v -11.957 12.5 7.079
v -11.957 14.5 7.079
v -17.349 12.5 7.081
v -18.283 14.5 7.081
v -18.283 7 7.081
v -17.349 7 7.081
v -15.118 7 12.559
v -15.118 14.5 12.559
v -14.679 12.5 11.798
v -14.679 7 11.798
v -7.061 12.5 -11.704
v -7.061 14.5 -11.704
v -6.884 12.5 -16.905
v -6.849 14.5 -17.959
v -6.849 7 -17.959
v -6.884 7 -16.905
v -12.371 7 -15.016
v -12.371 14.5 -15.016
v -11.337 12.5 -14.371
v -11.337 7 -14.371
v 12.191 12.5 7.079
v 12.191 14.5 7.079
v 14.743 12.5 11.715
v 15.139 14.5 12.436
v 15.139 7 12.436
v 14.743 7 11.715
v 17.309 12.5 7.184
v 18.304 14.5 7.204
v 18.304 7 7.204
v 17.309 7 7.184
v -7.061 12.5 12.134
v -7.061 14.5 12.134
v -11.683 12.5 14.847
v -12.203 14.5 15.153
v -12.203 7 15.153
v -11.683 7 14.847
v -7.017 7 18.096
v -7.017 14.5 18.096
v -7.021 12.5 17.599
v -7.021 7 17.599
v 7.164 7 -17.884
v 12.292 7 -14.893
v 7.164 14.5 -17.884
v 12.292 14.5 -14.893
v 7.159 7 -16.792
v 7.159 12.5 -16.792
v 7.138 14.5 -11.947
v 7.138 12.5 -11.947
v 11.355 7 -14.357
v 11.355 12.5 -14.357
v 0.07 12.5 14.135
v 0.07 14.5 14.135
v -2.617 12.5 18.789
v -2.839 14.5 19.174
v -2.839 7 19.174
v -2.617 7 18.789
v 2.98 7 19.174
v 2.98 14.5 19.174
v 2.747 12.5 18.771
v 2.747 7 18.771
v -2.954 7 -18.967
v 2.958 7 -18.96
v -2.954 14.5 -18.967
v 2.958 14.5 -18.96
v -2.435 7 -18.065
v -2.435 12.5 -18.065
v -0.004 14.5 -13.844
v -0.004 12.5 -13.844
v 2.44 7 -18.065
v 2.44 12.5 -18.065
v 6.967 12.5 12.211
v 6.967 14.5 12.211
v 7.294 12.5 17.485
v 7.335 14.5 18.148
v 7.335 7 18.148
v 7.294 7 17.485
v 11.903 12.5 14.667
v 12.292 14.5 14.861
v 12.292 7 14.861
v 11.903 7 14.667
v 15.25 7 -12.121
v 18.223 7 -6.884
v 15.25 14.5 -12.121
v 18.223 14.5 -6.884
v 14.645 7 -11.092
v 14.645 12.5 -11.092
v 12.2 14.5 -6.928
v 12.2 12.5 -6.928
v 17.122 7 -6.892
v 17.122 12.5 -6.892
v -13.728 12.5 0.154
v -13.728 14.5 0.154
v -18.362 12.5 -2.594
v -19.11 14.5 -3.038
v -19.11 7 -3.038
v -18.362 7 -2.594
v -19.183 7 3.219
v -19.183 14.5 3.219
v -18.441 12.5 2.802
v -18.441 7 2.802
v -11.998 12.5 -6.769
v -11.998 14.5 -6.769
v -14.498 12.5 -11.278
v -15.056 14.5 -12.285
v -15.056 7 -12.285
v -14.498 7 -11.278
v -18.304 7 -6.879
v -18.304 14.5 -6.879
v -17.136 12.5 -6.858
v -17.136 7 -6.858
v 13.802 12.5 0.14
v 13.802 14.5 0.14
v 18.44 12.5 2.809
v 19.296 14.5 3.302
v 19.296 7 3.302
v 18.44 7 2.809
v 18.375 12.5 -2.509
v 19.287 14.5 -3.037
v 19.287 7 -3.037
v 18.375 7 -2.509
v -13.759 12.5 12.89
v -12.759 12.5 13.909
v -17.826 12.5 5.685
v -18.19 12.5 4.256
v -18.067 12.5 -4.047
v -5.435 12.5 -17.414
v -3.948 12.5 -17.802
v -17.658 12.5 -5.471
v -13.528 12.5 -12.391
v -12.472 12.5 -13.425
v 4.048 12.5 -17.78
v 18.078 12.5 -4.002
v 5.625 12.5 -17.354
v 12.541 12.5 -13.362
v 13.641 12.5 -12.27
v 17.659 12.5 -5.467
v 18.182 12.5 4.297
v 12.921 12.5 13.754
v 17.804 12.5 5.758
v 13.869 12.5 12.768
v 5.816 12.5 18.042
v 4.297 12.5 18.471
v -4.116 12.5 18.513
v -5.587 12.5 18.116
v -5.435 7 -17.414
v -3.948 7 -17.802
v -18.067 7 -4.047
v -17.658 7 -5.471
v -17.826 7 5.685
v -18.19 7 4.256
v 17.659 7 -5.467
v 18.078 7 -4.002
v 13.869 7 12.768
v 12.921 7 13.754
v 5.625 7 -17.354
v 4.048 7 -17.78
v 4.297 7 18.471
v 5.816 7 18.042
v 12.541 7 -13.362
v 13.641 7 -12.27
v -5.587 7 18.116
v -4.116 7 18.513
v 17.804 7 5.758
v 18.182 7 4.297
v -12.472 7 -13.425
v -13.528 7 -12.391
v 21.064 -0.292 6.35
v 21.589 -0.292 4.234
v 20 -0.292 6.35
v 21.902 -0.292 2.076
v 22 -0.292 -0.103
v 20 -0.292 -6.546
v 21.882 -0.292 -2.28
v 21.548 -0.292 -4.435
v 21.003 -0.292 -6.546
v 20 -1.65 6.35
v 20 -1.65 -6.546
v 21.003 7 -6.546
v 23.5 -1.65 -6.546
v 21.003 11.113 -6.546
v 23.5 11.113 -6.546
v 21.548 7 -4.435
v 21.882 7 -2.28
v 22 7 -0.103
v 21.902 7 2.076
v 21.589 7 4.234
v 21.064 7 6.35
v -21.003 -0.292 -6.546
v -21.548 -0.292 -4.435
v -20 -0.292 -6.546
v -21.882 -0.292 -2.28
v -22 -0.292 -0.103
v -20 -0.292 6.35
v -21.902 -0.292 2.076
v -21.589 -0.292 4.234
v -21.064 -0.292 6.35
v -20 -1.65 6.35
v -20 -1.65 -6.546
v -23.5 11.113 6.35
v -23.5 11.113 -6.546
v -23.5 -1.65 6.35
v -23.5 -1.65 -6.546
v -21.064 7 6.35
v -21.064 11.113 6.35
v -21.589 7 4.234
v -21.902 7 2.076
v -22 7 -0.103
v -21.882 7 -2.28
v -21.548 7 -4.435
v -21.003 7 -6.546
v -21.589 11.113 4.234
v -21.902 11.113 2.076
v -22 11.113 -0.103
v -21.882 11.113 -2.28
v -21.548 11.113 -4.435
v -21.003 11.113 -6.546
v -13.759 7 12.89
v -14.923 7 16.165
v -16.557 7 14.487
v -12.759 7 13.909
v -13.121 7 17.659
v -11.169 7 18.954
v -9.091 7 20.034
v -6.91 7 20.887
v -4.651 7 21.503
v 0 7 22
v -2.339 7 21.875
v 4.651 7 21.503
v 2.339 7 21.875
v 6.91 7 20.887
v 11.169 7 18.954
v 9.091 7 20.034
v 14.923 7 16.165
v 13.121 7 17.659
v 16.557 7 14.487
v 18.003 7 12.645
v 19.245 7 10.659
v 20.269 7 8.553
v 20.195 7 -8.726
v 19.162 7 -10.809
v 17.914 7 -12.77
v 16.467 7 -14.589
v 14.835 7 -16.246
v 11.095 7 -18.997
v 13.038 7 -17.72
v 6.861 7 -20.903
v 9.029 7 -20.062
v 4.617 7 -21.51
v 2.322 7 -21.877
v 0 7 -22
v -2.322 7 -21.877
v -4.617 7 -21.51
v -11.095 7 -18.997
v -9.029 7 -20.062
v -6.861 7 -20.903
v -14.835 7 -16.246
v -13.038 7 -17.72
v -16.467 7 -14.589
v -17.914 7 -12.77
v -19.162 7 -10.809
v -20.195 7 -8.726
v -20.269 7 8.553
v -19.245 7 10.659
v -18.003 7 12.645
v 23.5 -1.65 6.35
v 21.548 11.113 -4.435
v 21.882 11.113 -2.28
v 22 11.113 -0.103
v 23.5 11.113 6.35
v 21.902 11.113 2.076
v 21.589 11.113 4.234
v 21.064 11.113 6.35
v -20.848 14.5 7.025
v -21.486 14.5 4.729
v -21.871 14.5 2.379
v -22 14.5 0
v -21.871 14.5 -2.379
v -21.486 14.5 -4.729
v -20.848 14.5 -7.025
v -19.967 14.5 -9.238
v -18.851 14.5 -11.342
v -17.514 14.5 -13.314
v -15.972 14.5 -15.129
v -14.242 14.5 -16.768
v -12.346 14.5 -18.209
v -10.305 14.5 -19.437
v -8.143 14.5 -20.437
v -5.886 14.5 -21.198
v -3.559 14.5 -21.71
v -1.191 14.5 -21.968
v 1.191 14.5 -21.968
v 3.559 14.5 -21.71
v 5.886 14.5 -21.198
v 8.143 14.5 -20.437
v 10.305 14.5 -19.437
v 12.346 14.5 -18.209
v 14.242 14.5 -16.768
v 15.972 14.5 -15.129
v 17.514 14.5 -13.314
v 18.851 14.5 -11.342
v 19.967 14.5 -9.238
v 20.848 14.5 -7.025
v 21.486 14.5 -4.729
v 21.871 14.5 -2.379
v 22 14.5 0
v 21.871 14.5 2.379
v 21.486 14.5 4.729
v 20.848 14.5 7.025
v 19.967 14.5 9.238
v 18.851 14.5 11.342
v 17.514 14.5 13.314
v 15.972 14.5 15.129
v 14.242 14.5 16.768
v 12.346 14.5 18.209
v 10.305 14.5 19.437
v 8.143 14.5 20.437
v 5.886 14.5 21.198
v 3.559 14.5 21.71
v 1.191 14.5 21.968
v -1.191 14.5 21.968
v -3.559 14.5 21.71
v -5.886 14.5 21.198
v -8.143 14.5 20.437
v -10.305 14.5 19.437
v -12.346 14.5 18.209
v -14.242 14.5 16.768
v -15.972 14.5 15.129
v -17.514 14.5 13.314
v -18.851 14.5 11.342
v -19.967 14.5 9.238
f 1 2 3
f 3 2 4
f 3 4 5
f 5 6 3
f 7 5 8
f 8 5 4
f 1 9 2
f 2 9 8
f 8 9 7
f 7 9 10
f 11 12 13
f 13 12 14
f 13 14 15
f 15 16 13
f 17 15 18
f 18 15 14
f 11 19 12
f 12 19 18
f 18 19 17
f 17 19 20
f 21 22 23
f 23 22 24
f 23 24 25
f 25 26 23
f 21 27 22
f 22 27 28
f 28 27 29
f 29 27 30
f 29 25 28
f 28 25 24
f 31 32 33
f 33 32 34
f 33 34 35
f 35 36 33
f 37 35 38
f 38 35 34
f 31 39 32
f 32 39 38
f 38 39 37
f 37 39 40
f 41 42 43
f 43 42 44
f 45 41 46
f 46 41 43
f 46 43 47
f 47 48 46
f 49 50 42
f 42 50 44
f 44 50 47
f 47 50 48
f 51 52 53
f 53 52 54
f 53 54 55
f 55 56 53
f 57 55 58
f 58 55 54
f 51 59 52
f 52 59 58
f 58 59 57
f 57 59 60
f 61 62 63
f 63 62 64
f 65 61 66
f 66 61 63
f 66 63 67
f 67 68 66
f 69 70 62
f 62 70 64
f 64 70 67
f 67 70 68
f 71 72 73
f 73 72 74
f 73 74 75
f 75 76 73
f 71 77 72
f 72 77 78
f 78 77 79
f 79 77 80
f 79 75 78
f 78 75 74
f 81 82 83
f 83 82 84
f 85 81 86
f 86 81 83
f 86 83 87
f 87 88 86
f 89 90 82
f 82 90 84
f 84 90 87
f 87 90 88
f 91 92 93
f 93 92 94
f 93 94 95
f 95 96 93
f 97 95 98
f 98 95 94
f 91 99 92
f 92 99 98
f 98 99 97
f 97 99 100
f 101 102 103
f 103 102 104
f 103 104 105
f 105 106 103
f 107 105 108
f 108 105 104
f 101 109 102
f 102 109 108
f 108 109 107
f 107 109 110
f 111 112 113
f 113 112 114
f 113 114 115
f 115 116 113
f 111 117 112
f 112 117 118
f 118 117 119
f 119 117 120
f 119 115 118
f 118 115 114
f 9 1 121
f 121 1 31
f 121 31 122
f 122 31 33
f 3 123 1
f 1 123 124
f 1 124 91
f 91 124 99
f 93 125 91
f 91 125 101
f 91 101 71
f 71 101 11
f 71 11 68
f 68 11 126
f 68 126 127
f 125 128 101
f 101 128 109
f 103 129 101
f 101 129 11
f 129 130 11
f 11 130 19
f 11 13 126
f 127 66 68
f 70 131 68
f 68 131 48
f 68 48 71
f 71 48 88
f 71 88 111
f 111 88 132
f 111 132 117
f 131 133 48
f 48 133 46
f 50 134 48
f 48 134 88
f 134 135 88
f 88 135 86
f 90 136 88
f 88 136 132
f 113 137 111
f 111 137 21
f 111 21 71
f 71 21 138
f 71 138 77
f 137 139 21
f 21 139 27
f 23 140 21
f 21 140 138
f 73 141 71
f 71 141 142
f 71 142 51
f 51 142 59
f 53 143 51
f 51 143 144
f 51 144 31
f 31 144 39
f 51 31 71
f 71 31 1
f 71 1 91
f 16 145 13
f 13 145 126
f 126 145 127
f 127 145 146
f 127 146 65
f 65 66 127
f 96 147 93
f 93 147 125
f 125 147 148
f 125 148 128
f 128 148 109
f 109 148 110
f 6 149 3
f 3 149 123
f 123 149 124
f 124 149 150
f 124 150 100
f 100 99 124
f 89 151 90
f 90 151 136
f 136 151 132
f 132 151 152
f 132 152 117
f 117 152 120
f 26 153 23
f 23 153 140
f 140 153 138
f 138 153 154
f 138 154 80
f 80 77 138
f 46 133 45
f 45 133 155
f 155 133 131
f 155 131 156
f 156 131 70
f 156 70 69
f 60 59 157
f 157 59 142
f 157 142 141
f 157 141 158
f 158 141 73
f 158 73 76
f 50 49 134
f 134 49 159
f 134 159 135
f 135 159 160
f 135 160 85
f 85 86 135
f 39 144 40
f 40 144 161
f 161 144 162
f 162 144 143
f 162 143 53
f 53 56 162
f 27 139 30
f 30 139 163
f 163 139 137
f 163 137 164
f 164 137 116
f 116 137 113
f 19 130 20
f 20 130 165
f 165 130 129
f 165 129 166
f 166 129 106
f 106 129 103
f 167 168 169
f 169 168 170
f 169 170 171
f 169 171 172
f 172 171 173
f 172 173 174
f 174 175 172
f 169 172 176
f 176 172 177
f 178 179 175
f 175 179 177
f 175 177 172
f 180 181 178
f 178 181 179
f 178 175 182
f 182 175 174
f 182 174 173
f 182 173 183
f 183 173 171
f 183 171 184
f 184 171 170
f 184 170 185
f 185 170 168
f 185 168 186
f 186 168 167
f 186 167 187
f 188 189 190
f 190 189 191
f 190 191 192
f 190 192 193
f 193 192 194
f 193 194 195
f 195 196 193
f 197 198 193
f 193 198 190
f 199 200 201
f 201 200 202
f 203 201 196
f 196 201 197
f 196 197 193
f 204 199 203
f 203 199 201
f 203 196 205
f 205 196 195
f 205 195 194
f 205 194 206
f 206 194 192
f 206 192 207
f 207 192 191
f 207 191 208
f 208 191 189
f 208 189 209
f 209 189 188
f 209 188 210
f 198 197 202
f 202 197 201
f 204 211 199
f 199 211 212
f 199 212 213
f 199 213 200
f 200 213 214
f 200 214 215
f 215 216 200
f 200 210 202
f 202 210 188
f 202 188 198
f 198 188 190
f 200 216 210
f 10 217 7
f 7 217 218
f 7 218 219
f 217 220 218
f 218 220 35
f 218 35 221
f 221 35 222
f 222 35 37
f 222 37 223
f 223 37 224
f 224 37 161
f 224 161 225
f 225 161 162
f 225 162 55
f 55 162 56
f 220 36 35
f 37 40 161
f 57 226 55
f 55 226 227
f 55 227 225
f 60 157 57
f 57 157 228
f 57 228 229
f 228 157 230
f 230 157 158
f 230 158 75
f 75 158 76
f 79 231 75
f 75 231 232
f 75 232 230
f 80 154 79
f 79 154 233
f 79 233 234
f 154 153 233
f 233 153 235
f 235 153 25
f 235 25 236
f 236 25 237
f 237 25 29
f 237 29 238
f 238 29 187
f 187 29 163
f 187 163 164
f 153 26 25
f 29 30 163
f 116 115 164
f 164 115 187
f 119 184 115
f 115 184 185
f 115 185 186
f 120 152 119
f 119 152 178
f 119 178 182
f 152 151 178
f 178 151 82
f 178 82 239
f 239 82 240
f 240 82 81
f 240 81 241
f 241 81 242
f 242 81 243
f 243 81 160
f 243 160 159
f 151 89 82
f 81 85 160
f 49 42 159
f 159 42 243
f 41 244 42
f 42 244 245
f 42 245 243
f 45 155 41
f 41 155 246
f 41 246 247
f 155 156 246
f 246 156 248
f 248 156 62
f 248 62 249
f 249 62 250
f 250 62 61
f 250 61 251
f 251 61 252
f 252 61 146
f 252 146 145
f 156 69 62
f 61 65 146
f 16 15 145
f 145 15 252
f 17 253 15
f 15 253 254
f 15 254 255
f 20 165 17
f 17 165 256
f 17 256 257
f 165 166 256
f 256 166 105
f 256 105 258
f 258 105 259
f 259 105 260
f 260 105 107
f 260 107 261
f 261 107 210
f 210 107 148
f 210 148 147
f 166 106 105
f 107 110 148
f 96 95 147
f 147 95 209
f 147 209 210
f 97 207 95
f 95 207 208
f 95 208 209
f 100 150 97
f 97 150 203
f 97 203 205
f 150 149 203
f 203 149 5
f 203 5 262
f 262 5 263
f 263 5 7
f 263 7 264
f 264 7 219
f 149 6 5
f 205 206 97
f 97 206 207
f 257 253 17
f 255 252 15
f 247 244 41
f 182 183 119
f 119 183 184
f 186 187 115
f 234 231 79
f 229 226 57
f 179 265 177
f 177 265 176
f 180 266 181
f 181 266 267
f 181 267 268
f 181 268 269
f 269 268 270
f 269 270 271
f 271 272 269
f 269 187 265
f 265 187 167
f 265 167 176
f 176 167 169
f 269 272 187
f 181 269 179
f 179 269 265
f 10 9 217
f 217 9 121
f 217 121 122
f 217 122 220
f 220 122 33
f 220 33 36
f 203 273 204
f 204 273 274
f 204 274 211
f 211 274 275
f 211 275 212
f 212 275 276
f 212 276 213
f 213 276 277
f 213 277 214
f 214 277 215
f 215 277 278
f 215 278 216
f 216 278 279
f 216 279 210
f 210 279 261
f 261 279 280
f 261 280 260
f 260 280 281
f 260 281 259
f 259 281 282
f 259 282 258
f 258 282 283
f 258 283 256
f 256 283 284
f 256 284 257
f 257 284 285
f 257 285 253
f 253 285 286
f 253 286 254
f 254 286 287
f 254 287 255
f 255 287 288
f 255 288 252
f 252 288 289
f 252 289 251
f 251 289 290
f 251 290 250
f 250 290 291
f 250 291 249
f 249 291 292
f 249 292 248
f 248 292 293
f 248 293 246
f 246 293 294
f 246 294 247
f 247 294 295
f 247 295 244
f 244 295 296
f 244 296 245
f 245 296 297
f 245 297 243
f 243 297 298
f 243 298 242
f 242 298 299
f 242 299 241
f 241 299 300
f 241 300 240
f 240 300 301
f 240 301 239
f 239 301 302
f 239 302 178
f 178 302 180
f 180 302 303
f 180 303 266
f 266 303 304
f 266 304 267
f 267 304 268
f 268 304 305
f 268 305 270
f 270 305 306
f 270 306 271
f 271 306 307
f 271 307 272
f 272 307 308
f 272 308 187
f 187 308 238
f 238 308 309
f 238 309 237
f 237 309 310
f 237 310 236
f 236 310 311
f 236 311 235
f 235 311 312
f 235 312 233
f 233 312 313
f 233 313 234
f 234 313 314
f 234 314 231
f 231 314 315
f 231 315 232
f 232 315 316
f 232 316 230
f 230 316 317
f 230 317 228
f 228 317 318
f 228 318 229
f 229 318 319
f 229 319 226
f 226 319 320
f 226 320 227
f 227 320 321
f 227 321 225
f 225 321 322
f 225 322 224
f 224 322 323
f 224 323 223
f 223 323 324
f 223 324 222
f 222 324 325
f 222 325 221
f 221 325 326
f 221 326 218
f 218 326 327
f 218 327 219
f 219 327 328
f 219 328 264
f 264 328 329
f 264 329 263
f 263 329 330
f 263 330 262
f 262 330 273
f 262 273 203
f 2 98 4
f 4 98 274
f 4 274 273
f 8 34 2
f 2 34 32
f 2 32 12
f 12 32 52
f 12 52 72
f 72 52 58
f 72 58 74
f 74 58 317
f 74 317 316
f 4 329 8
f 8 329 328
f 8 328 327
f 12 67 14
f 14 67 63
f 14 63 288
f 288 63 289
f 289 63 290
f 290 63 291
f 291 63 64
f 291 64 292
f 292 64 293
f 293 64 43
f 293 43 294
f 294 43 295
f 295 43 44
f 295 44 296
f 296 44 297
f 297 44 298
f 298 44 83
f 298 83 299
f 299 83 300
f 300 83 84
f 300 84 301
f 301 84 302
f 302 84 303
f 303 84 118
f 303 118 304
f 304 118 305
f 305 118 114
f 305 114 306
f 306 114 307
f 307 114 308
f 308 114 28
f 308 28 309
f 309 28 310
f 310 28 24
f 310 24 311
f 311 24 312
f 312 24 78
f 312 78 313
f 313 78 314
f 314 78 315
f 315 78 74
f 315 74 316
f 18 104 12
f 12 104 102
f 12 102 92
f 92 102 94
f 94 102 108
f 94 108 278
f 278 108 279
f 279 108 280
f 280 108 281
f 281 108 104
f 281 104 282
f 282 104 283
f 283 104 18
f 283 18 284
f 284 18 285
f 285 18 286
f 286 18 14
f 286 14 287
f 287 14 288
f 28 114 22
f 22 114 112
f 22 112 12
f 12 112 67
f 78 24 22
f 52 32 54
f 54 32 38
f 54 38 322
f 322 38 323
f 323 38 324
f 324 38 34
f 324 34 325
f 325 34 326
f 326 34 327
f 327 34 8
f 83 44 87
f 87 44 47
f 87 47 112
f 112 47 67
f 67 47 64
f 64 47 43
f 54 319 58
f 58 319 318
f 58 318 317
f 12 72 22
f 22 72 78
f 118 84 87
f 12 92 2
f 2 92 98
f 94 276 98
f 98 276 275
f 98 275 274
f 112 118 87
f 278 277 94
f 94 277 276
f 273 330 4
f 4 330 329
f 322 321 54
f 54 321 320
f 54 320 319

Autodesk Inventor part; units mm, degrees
ref_plane "YZ Plane" through (0, 0, 0) normal (1, 0, 0) x (0, 1, 0)
ref_plane "XZ Plane" through (0, 0, 0) normal (0, 1, 0) x (-1, 0, 0)
ref_plane "XY Plane" through (0, 0, 0) normal (0, 0, 1) x (1, 0, 0)
sketch "Sketch1" plane through (0, 0, 0) normal (0, 1, 0) x (-1, 0, 0)
  circle A0 centre (0, 0) radius 22
  arc A1 (-13.7238, -17.1947) -> (13.7238, -17.1947) centre (0, 0) ccw
  dimension "d0" = 44
  dimension "d11" = 13.7238
ref_plane "Work Plane10" through (0, 7, 0) normal (0, 1, 0) x (1, 0, 0)
sketch "Sketch5" plane through (0, 7, 0) normal (0, 1, 0) x (1, 0, 0)
  circle A0 centre (0, 0) radius 20
  dimension "d8" = 40
ref_plane "Work Plane9" through (0, 0, 0) normal (0, -1, 0) x (1, 0, 0)
sketch "Sketch8" plane through (0, 0, 0) normal (0, -1, 0) x (1, 0, 0)
  arc A0 (-11.5874, -18.7011) -> (11.5874, -18.7011) centre (0, 0) ccw
  line L0 (-15.0453, -16.0511) -> (-15.0453, -22.0257)
  line L1 (15.0453, -16.0511) -> (15.0453, -22.0257)
  arc A1 (-15.0453, -16.0511) -> (15.0453, -16.0511) centre (0, 0) ccw
  arc A2 (-15.0453, -22.0257) -> (-13.0453, -24.0257) centre (-13.0453, -22.0257) ccw
  arc A3 (13.0453, -24.0257) -> (15.0453, -22.0257) centre (13.0453, -22.0257) ccw
  line L2 (-15.0451, -16.0514) -> (-15.0451, -22.026)
  arc A4 (-15.0451, -22.026) -> (-13.0451, -24.026) centre (-13.0451, -22.026) ccw
  arc A5 (13.0456, -24.026) -> (15.0456, -22.026) centre (13.0456, -22.026) ccw
  line L3 (15.0456, -16.0514) -> (15.0456, -22.026)
  arc A6 (-15.0451, -16.0514) -> (15.0456, -16.0514) centre (0.0003, -0.0002) ccw
  arc A7 (13.0456, -24.026) -> (-13.0451, -24.026) centre (0.0003, -66.8475) ccw
  point P0 (0, 0)
  point P1 (0, 0)
ref_plane "Work Plane8" through (0, 0, 0) normal (0, -1, 0) x (1, 0, 0)
sketch "Sketch11" plane through (0, 0, 0) normal (0, -1, 0) x (1, 0, 0)
  arc A0 (11.5874, 18.7011) -> (-11.5874, 18.7011) centre (0, 0) ccw
  line L0 (-15.0453, 16.0511) -> (-15.0453, 22.0257)
  line L1 (15.0453, 16.0511) -> (15.0453, 22.0257)
  arc A1 (15.0453, 16.0511) -> (-15.0453, 16.0511) centre (0, 0) ccw
  arc A2 (-13.0453, 24.0257) -> (-15.0453, 22.0257) centre (-13.0453, 22.0257) ccw
  arc A3 (15.0453, 22.0257) -> (13.0453, 24.0257) centre (13.0453, 22.0257) ccw
  line L2 (-15.0451, 16.0514) -> (-15.0451, 22.026)
  arc A4 (-13.0451, 24.026) -> (-15.0451, 22.026) centre (-13.0451, 22.026) ccw
  arc A5 (15.0456, 22.026) -> (13.0456, 24.026) centre (13.0456, 22.026) ccw
  line L3 (15.0456, 16.0514) -> (15.0456, 22.026)
  arc A6 (15.0456, 16.0514) -> (-15.0451, 16.0514) centre (0.0003, 0.0002) ccw
  arc A7 (-13.0451, 24.026) -> (13.0456, 24.026) centre (0.0003, 66.8475) ccw
  point P0 (0, 0)
  dimension "d27" = 2
  dimension "d28" = 2
ref_plane "Work Plane5" through (14.0456, 0, 22.026) normal (1, 0, 0) x (0, 0, -1)
sketch "Sketch14" plane through (14.0456, 0, 22.026) normal (1, 0, 0) x (0, 0, -1)
  line L0 (0, 0) -> (0, 7) projected
  circle A0 centre (0, 3.5) radius 0.9
  point P0 (22.026, 0)
  dimension "d38" = 1.8
ref_plane "Work Plane6" through (14.0456, 0, 22.026) normal (1, 0, 0) x (0, 0, -1)
sketch "Sketch15" plane through (14.0456, 0, 22.026) normal (1, 0, 0) x (0, 0, -1)
  line L0 (44.1089, 7) -> (44.1089, 0) projected
  circle A0 centre (44.1089, 3.5) radius 0.9
  point P0 (22.026, 0)
  dimension "d41" = 1.8
ref_plane "Work Plane7" through (0, 7, 0) normal (0, 1, 0) x (1, 0, 0)
sketch "Sketch16" plane through (0, 7, 0) normal (0, 1, 0) x (1, 0, 0)
  circle A0 centre (0, 0) radius 22
  circle A1 centre (0, -0.3745) radius 18.6
  dimension "d44" = 37.2
extrude "Extrusion13" add sketch "Sketch16" along normal blind 7.5
ref_plane "Work Plane3" through (22, 0, 0) normal (1, 0, 0) x (0, 1, 0)
sketch "Sketch17" plane through (22, 0, 0) normal (1, 0, 0) x (0, 1, 0)
  line L0 (7, -18.2255) -> (7, 18.9745) projected
  line L1 (11.1125, 6.35) -> (7, 6.35)
  line L2 (7, 6.35) -> (7, -6.5465)
  line L3 (7, -6.5465) -> (11.1125, -6.5465)
  line L4 (11.1125, -6.5465) -> (11.1125, 6.35)
extrude "Extrusion14" add sketch "Sketch17" along normal mid plane 3
ref_plane "Work Plane12" through (21.0034, 7, -6.5465) normal (0, -1, 0) x (1, 0, 0)
sketch "Sketch18" plane through (21.0034, 7, -6.5465) normal (0, -1, 0) x (1, 0, 0)
  arc A0 (-35.8073, -9.7276) -> (-35.8073, 22.8206) centre (-21.0034, 6.5465) ccw projected
  line L0 (0, 0) -> (2.4966, 0) projected
  line L1 (0, 0) -> (2.4966, 0)
  line L2 (2.4966, 12.8965) -> (0.0602, 12.8965) projected
  line L3 (2.4966, 0) -> (2.4966, 12.8965)
  line L4 (2.4966, 12.8965) -> (0.0602, 12.8965)
  arc A1 (0, 0) -> (0.0602, 12.8965) centre (-21.0034, 6.5465) ccw
extrude "Extrusion15" add sketch "Sketch18" along normal blind 8.65
ref_plane "Work Plane4" through (-22, 0, 0) normal (-1, 0, 0) x (0, -1, 0)
sketch "Sketch19" plane through (-22, 0, 0) normal (-1, 0, 0) x (0, -1, 0)
  line L0 (-11.1125, -6.5465) -> (-11.1125, 6.35) projected
  line L1 (-7, -20) -> (-7, 20) projected
  line L2 (-11.1125, -6.5465) -> (-7, -6.5465)
  line L3 (-7, -6.5465) -> (-7, 6.35)
  line L4 (-7, 6.35) -> (-11.1125, 6.35)
  line L5 (-11.1125, 6.35) -> (-11.1125, -6.5465)
  point P0 (0, 0)
extrude "Extrusion16" add sketch "Sketch19" along normal mid plane 3
sketch "Sketch20" plane through (-23.5, 7, -6.5465) normal (0, -1, 0) x (1, 0, 0)
  line L0 (0, 0) -> (2.4966, 0) projected
  line L1 (2.4966, 0) -> (0, 0)
  line L2 (0, 12.8965) -> (0, 0) projected
  line L3 (0, 0) -> (0, 12.8965)
  arc A0 (2.4363, 12.8965) -> (2.4966, 0) centre (23.5, 6.5465) ccw projected
  line L4 (0, 12.8965) -> (2.4363, 12.8965)
  point P0 (3, 0)
extrude "Extrusion17" add sketch "Sketch20" along normal blind 8.65
sketch "Sketch21" plane through (-23.5, 0, 0) normal (-1, 0, 0) x (0, 0, 1)
  line L0 (-6.5465, 11.1125) -> (-6.5465, -1.65) projected
  line L1 (6.35, -1.65) -> (-6.5465, -1.65)
  line L2 (-6.5465, -1.65) -> (-6.5465, -0.292)
  line L3 (-6.5465, -0.292) -> (6.35, -0.292)
  line L4 (6.35, -0.292) -> (6.35, -1.65)
  point P0 (6.35, 0)
extrude "Extrusion18" add sketch "Sketch21" against normal blind 3.5
sketch "Sketch22" plane through (23.5, 0, 0) normal (1, 0, 0) x (0, 0, -1)
  line L0 (-6.35, -0.292) -> (6.5465, -0.292) projected
  line L1 (-6.35, -1.65) -> (6.5465, -1.65) projected
  line L2 (6.5465, -0.292) -> (-6.35, -0.292)
  line L3 (-6.35, -0.292) -> (-6.35, -1.65)
  line L4 (-6.35, -1.65) -> (6.5465, -1.65)
  line L5 (6.5465, -1.65) -> (6.5465, -0.292)
  point P0 (0, 0)
extrude "Extrusion19" add sketch "Sketch22" against normal blind 3.5
ref_plane "Work Plane11" through (0, 14.5, 0) normal (0, 1, 0) x (1, 0, 0)
sketch "Sketch23" plane through (0, 14.5, 0) normal (0, 1, 0) x (1, 0, 0)
  circle A0 centre (0, 0) radius 20
extrude "Extrusion20" add sketch "Sketch23" against normal blind 2
sketch "Sketch24" plane through (0, 14.5, 0) normal (0, 1, 0) x (1, 0, 0)
  line L0 (2.958, 18.9599) -> (-0.0041, 13.8437)
  line L1 (-0.0041, 13.8437) -> (-2.9538, 18.9671)
  line L2 (-2.9538, 18.9671) -> (2.958, 18.9599)
  line L3 (12.2922, 14.893) -> (7.1379, 11.9475)
  line L4 (7.1379, 11.9475) -> (7.1641, 17.884)
  line L5 (7.1641, 17.884) -> (12.2922, 14.893)
  line L6 (18.2225, 6.8835) -> (12.2004, 6.928)
  line L7 (12.2004, 6.928) -> (15.25, 12.1211)
  line L8 (15.25, 12.1211) -> (18.2225, 6.8835)
  line L9 (19.2871, 3.0371) -> (19.2959, -3.302)
  line L10 (19.2959, -3.302) -> (13.8017, -0.1401)
  line L11 (13.8017, -0.1401) -> (19.2871, 3.0371)
  line L12 (18.3039, -7.2042) -> (15.1393, -12.4356)
  line L13 (15.1393, -12.4356) -> (12.1912, -7.0793)
  line L14 (12.1912, -7.0793) -> (18.3039, -7.2042)
  line L15 (12.2922, -14.8615) -> (7.3345, -18.1476)
  line L16 (7.3345, -18.1476) -> (6.9675, -12.2111)
  line L17 (6.9675, -12.2111) -> (12.2922, -14.8615)
  line L18 (0.0704, -14.1349) -> (2.9797, -19.1738)
  line L19 (2.9797, -19.1738) -> (-2.8388, -19.1738)
  line L20 (-2.8388, -19.1738) -> (0.0704, -14.1349)
  line L21 (-7.0607, -12.1336) -> (-7.0172, -18.0963)
  line L22 (-7.0172, -18.0963) -> (-12.2028, -15.1526)
  line L23 (-12.2028, -15.1526) -> (-7.0607, -12.1336)
  line L24 (-11.9565, -7.0793) -> (-15.118, -12.5587)
  line L25 (-15.118, -12.5587) -> (-18.2826, -7.0811)
  line L26 (-18.2826, -7.0811) -> (-11.9565, -7.0793)
  line L27 (-13.7277, -0.1539) -> (-19.1828, -3.2194)
  line L28 (-19.1828, -3.2194) -> (-19.11, 3.0377)
  line L29 (-19.11, 3.0377) -> (-13.7277, -0.1539)
  line L30 (-11.9985, 6.7691) -> (-18.3039, 6.8788)
  line L31 (-18.3039, 6.8788) -> (-15.0562, 12.2846)
  line L32 (-15.0562, 12.2846) -> (-11.9985, 6.7691)
  line L33 (-7.0607, 11.7045) -> (-12.3714, 15.0155)
  line L34 (-12.3714, 15.0155) -> (-6.8486, 17.9592)
  line L35 (-6.8486, 17.9592) -> (-7.0607, 11.7045)
  point P0 (0, 0)
  point P1 (0, 17.2569)
  point P2 (8.8647, 14.9082)
  point P3 (15.2243, 8.6442)
  point P4 (17.4616, -0.135)
  point P5 (15.2115, -8.9064)
  point P6 (8.8647, -15.0734)
  point P7 (0.0704, -17.4941)
  point P8 (-8.7603, -15.1275)
  point P9 (-15.119, -8.9064)
  point P10 (-17.3402, -0.1119)
  point P11 (-15.1196, 8.6442)
  point P12 (-8.7603, 14.893)
extrude "Extrusion21" cut sketch "Sketch24" against normal blind 8
properties part number "watchBodyOneTopV1.1"
